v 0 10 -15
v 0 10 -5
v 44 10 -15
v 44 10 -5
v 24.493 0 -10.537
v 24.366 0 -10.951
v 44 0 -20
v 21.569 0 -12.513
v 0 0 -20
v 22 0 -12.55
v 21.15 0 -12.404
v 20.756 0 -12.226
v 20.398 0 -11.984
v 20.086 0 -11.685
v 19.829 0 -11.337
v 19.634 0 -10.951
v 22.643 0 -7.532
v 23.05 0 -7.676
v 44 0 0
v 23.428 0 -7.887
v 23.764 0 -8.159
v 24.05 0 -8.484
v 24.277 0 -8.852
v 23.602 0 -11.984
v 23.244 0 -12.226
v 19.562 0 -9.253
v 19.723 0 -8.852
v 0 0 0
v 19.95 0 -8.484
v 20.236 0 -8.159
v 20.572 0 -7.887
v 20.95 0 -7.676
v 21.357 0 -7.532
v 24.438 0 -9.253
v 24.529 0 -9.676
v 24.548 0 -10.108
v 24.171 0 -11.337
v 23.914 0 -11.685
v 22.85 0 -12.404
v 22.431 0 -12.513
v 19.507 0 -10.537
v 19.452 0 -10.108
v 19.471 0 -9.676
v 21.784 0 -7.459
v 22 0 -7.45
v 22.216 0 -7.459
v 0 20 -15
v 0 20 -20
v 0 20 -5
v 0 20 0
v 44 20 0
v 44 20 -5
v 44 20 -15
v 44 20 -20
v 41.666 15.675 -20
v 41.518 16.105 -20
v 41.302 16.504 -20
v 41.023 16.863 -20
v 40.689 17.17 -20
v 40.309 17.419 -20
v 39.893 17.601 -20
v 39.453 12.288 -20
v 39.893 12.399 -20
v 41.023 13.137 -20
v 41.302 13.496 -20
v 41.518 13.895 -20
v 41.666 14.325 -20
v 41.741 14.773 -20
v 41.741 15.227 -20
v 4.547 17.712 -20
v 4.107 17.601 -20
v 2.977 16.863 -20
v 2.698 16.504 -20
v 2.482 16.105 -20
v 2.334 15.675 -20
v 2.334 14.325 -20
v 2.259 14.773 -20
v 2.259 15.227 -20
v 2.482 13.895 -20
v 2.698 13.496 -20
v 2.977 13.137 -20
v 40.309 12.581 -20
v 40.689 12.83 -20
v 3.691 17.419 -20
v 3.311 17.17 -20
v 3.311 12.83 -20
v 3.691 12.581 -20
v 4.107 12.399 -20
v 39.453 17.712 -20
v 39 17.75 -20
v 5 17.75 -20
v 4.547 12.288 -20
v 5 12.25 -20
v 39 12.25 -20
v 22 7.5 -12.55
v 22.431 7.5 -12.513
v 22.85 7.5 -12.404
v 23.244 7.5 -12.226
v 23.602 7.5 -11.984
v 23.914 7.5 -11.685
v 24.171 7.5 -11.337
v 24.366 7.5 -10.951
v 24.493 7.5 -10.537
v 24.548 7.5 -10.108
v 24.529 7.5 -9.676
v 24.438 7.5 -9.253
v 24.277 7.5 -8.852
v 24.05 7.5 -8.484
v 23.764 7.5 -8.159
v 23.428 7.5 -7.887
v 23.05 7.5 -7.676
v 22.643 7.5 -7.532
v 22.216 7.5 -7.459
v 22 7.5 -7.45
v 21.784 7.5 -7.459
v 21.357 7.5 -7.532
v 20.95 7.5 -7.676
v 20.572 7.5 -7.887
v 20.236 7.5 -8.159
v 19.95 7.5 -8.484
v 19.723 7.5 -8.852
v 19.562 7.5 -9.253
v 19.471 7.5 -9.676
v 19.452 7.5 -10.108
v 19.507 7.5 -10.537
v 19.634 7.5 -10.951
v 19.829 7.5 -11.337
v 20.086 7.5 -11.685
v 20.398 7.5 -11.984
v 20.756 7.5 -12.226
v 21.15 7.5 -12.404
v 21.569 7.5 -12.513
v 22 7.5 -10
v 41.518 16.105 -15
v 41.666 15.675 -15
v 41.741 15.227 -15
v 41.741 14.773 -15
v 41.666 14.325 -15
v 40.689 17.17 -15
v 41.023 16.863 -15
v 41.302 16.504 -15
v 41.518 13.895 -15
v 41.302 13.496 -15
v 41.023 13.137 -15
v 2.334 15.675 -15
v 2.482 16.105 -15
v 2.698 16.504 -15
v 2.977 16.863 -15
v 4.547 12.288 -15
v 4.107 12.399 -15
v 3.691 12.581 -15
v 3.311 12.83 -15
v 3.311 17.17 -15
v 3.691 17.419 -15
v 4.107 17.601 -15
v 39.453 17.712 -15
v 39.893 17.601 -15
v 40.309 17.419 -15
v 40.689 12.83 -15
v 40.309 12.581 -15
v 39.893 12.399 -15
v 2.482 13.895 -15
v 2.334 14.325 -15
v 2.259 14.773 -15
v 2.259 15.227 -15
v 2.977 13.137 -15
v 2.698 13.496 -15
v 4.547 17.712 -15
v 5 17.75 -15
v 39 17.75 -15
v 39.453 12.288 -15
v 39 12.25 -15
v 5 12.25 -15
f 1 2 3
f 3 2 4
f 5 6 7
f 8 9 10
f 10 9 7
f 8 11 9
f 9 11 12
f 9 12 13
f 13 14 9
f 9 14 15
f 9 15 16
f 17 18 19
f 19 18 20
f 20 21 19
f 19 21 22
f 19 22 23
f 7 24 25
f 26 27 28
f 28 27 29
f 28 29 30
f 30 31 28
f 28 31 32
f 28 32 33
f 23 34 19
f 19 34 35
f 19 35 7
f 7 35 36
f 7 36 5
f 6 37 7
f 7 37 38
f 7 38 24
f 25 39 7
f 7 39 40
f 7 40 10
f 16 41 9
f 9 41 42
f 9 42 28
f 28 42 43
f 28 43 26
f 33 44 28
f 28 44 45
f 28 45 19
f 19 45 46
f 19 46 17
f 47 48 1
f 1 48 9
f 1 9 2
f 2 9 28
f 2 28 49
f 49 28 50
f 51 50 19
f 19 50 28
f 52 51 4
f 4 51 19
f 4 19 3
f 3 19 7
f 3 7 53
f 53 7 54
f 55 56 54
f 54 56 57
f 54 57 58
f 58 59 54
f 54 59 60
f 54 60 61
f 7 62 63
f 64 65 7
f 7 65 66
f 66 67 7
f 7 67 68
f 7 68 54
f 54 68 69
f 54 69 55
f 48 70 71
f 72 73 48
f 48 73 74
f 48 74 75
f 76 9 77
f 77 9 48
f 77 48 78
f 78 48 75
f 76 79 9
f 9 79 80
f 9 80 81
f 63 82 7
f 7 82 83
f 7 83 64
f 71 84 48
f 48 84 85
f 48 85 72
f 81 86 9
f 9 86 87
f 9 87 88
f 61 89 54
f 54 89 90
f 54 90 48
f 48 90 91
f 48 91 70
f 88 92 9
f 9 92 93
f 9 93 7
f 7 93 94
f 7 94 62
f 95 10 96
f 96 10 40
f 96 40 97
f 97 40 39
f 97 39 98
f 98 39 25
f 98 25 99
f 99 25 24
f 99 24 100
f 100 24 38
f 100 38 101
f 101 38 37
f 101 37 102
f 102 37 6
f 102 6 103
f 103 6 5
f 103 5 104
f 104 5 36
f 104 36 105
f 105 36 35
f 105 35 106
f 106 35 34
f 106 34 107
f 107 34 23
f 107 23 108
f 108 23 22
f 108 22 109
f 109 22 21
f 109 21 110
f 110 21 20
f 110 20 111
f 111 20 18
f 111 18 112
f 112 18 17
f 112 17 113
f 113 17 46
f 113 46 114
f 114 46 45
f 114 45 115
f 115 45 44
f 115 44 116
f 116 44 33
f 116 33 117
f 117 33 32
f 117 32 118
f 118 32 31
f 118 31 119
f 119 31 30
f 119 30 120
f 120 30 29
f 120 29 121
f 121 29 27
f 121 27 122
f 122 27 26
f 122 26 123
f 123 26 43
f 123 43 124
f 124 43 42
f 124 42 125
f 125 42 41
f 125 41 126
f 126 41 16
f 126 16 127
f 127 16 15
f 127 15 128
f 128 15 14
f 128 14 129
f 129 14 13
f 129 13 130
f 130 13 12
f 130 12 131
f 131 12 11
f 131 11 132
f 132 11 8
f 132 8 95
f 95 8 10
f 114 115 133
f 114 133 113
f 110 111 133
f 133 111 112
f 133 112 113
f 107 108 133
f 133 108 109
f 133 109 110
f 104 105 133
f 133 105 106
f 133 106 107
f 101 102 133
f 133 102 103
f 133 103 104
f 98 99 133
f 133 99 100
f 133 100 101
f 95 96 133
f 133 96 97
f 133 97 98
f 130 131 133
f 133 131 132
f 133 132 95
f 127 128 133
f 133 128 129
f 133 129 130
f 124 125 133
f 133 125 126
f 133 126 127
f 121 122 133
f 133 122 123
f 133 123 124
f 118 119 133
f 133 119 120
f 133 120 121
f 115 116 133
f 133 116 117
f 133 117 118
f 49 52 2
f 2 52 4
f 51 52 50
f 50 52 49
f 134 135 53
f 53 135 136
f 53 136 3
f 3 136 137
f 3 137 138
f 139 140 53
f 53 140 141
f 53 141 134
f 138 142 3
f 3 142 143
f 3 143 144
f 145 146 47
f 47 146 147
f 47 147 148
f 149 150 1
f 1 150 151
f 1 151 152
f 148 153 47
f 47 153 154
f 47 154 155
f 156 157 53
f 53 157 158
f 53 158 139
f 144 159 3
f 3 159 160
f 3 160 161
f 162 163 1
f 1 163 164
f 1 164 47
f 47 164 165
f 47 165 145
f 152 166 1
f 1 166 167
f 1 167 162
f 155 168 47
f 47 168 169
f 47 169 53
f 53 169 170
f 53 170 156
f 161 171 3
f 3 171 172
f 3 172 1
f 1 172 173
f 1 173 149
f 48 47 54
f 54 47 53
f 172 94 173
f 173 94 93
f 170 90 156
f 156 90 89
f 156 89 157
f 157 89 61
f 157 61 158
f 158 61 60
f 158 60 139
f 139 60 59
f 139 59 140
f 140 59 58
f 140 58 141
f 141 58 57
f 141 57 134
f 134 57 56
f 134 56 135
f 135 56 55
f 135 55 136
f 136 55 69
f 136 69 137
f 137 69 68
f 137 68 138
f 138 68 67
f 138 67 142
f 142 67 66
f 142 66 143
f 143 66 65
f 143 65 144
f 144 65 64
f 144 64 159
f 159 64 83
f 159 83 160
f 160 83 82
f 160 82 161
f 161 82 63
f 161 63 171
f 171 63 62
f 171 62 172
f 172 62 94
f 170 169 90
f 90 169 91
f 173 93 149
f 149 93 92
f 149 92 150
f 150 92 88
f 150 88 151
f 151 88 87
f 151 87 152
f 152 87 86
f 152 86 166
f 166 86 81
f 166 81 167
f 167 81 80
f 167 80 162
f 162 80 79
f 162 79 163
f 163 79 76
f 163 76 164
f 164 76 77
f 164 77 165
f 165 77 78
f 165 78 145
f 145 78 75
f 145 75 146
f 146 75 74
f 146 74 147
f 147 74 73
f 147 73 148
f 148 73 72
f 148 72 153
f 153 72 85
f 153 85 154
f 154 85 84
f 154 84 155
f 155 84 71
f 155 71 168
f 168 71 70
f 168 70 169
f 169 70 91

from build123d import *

# Parameters (mm, degrees)
SKETCH1_W               = 44
SKETCH1_H               = 20
SKETCH1_R               = 2.55
BOSS_EXTRUDE1_DEPTH     = 7.5
SKETCH2_W               = 44
SKETCH2_H               = 20
BOSS_EXTRUDE2_DEPTH     = 2.5
SKETCH3_W               = 44
SKETCH3_H               = 5
BOSS_EXTRUDE3_DEPTH     = 10
CUT_EXTRUDE1_DEPTH      = 1
CUT_EXTRUDE1_DEPTH_BACK = 5


with BuildPart() as part:
    # Sketch1 → Boss-Extrude1 (new body)
    with BuildSketch(Plane(origin=(0, 0, 0), x_dir=(1, 0, 0), z_dir=(0, 1, 0))):
        with Locations((22, 10)):
            Rectangle(SKETCH1_W, SKETCH1_H)
        with Locations((22, 10)):
            Circle(SKETCH1_R, mode=Mode.SUBTRACT)
    extrude(amount=BOSS_EXTRUDE1_DEPTH)

    # Sketch2 → Boss-Extrude2 (add)
    with BuildSketch(Plane(origin=(0, 7.5, 0), x_dir=(1, 0, 0), z_dir=(0, 1, 0))):
        with Locations((22, 10)):
            Rectangle(SKETCH2_W, SKETCH2_H)
    extrude(amount=BOSS_EXTRUDE2_DEPTH)

    # Sketch3 → Boss-Extrude3 (add)
    with BuildSketch(Plane(origin=(0, 10, 0), x_dir=(1, 0, 0), z_dir=(0, 1, 0))):
        with Locations((22, 2.5)):
            Rectangle(SKETCH3_W, SKETCH3_H)
        with Locations((22, 17.5)):
            Rectangle(SKETCH3_W, SKETCH3_H)
    extrude(amount=BOSS_EXTRUDE3_DEPTH)

    # Sketch4 → Cut-Extrude1 (cut, two sides)
    with BuildSketch(Plane(origin=(0, 0, -20), x_dir=(-1, 0, 0), z_dir=(0, 0, -1))) as cut_extrude1_sk:
        with BuildLine():
            Line((-5, 17.75), (-39, 17.75))
            ThreePointArc((-39, 17.75), (-37.055456352, 16.944543648), (-36.25, 15))
            ThreePointArc((-36.25, 15), (-37.055456352, 13.055456352), (-39, 12.25))
            Line((-39, 12.25), (-5, 12.25))
            ThreePointArc((-5, 12.25), (-7.75, 15), (-5, 17.75))
        make_face()
        with BuildLine():
            ThreePointArc((-36.25, 15), (-37.055456352, 16.944543648), (-39, 17.75))
            Line((-39, 17.75), (-39, 12.25))
            ThreePointArc((-39, 12.25), (-37.055456352, 13.055456352), (-36.25, 15))
        make_face()
        with BuildLine():
            Line((-39, 12.25), (-39, 17.75))
            ThreePointArc((-39, 17.75), (-41.75, 15), (-39, 12.25))
        make_face()
        with BuildLine():
            ThreePointArc((-2.25, 15), (-3.055456352, 16.944543648), (-5, 17.75))
            Line((-5, 17.75), (-5, 12.25))
            ThreePointArc((-5, 12.25), (-3.055456352, 13.055456352), (-2.25, 15))
        make_face()
        with BuildLine():
            Line((-5, 12.25), (-5, 17.75))
            ThreePointArc((-5, 17.75), (-7.75, 15), (-5, 12.25))
        make_face()
    extrude(amount=CUT_EXTRUDE1_DEPTH, mode=Mode.SUBTRACT)
    extrude(cut_extrude1_sk.sketch, amount=-CUT_EXTRUDE1_DEPTH_BACK, mode=Mode.SUBTRACT)


solid = part.part
